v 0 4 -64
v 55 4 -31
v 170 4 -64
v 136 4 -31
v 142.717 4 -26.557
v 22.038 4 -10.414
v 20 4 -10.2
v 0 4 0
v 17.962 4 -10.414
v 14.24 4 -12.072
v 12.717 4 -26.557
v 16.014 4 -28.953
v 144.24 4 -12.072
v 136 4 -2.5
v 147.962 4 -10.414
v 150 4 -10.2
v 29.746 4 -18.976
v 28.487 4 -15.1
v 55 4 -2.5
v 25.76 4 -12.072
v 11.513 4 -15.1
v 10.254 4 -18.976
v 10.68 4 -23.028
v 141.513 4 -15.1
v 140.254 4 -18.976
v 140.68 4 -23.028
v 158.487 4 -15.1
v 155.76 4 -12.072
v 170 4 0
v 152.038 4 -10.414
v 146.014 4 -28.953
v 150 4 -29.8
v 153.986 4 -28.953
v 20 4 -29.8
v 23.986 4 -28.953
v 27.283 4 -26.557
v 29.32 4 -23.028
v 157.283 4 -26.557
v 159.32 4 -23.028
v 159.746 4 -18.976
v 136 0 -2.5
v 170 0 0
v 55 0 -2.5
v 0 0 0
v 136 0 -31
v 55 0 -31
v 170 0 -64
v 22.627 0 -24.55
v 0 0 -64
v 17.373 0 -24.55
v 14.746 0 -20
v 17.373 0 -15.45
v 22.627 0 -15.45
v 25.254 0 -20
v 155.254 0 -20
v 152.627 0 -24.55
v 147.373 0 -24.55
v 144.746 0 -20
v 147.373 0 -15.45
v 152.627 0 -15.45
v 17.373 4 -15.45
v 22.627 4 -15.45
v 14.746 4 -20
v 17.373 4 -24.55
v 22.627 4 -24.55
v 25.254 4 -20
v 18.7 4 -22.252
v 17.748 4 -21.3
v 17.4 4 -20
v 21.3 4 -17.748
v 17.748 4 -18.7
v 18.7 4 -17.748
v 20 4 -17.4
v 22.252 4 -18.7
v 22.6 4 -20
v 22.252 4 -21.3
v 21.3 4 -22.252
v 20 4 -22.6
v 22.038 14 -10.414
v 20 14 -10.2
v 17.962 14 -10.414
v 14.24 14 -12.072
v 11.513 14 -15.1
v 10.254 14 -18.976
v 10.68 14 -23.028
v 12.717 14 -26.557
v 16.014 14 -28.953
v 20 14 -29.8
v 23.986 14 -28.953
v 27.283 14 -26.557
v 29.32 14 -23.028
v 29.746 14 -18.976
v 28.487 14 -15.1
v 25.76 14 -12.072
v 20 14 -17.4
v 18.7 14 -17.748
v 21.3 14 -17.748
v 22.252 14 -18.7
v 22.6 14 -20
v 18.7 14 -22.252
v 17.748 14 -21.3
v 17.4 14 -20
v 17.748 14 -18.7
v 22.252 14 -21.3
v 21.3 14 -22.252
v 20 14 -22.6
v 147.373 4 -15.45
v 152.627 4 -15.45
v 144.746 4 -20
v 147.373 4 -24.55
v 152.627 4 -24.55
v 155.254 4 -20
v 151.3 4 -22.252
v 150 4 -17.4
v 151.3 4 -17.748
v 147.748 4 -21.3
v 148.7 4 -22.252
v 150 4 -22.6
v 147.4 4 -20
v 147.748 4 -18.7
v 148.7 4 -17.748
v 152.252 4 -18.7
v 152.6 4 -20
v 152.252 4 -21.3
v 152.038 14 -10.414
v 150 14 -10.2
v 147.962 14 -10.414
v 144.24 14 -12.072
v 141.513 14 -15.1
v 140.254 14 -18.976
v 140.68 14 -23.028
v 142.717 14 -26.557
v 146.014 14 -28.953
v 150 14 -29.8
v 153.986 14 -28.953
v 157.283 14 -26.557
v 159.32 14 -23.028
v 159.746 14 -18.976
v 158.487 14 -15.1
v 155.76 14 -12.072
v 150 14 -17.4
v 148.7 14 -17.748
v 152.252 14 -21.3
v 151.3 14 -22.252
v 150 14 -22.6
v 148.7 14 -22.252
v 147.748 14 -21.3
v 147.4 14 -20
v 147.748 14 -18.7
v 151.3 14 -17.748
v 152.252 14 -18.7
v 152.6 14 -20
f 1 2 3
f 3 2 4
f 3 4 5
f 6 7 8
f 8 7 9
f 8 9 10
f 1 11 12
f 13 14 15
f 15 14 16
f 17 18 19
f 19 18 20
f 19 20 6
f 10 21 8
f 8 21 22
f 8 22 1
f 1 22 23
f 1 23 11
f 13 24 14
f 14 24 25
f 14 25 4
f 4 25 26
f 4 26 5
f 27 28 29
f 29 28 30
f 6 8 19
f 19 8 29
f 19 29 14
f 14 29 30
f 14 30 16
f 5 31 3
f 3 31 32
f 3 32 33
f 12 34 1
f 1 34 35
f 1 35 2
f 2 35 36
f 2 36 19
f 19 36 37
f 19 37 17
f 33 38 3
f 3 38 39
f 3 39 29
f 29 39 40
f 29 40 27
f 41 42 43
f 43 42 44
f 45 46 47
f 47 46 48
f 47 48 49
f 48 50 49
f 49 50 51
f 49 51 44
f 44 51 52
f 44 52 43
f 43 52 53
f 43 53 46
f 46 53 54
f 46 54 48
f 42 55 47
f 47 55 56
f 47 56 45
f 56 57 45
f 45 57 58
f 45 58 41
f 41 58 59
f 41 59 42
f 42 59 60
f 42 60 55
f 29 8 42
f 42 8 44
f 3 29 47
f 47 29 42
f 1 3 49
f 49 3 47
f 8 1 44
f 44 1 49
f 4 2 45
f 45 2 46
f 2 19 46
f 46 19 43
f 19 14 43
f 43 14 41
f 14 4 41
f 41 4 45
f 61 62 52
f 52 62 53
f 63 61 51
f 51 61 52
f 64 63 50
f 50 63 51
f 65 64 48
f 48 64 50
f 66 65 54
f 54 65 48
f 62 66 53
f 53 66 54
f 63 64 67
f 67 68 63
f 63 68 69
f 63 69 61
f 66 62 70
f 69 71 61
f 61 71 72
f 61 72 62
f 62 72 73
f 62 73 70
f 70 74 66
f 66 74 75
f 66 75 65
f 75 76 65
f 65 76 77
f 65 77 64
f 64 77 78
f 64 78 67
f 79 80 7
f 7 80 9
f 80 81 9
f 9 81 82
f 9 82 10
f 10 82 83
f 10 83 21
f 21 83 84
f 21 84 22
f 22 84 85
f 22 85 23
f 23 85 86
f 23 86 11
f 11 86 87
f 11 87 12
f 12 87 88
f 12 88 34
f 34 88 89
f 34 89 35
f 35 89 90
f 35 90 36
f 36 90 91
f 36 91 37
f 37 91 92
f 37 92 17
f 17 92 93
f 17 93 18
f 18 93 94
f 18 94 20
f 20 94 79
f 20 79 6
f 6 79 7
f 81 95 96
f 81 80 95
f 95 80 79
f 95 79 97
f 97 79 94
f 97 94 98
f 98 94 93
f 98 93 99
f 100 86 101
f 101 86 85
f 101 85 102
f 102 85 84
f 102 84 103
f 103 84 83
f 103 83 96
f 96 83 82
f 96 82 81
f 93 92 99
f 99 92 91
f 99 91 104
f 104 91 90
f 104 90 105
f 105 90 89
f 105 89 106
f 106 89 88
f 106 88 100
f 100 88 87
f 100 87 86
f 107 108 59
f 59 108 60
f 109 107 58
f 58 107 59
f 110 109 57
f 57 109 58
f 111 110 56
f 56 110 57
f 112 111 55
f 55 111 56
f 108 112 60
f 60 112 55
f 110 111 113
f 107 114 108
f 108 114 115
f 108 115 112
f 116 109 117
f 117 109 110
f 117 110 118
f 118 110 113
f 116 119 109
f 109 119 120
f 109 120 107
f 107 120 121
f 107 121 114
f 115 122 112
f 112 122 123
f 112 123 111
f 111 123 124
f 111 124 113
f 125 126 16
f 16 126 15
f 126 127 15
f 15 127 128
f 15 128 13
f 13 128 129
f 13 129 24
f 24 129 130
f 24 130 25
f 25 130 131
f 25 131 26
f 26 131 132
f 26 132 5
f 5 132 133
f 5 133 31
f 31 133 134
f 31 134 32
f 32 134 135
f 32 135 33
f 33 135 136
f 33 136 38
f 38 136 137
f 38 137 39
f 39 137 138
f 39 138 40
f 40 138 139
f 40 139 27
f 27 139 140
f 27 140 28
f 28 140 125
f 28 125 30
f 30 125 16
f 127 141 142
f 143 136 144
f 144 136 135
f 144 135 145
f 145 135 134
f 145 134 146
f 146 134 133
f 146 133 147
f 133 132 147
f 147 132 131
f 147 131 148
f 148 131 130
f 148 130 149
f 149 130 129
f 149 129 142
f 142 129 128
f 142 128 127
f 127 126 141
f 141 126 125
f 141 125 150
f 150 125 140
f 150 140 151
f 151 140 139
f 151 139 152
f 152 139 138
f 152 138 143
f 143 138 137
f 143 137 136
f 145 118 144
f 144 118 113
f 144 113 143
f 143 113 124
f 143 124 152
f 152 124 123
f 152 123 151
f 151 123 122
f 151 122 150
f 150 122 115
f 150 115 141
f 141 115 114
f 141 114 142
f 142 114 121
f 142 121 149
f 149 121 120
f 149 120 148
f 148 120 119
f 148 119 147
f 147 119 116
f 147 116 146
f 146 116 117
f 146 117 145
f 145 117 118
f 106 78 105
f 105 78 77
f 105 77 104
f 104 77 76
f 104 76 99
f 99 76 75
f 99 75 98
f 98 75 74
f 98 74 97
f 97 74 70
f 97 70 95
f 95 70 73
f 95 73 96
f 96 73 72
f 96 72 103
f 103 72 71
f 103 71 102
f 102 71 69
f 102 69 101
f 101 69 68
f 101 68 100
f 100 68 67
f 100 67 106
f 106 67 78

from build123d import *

# Parameters (mm, degrees)
SKETCH1_W             = 170
SKETCH1_H             = 64
SKETCH1_R             = 10
SKETCH1_W_2           = 81
SKETCH1_H_2           = 28.5
BOSS_EXTRUDE1_DEPTH   = 4
BOSS_EXTRUDE2_START   = -4
SKETCH2_R             = 10
SKETCH2_R_2           = 9.8
BOSS_EXTRUDE2_DEPTH   = 4
SKETCH3_R             = 9.8
BOSS_EXTRUDE3_DEPTH   = 10
BOSS_EXTRUDE3_2_DEPTH = 10
BOSS_EXTRUDE4_START   = 4
SKETCH4_R             = 9.8
SKETCH4_R_2           = 2.6
BOSS_EXTRUDE4_DEPTH   = 4
SKETCH5_R             = 2.6
CUT_EXTRUDE1_DEPTH    = 47


with BuildPart() as part:
    # Sketch1 → Boss-Extrude1 (new body)
    with BuildSketch(Plane(origin=(0, 0, 0), x_dir=(1, 0, 0), z_dir=(0, 1, 0))):
        with Locations((85, 32)):
            Rectangle(SKETCH1_W, SKETCH1_H)
        with Locations(Location((20, 20, 0), (0, 0, 270))):
            Circle(SKETCH1_R, mode=Mode.SUBTRACT)
        with Locations(Location((150, 20, 0), (0, 0, 270))):
            Circle(SKETCH1_R, mode=Mode.SUBTRACT)
        with Locations((95.5, 16.75)):
            Rectangle(SKETCH1_W_2, SKETCH1_H_2, mode=Mode.SUBTRACT)
    extrude(amount=BOSS_EXTRUDE1_DEPTH)

    # Sketch2 → Boss-Extrude2 (add)
    # profile 1 of 2: a face of its own
    with BuildSketch(Plane(origin=(0, 4, 0), x_dir=(1, 0, 0), z_dir=(0, 1, 0)).offset(BOSS_EXTRUDE2_START)):
        with Locations((20, 20)):
            Circle(SKETCH2_R)
        with Locations(Location((20, 20, 0), (0, 0, 270))):
            Circle(SKETCH2_R_2, mode=Mode.SUBTRACT)
    # profile 2 of 2: a face of its own
    with BuildSketch(Plane(origin=(0, 4, 0), x_dir=(1, 0, 0), z_dir=(0, 1, 0)).offset(BOSS_EXTRUDE2_START)):
        with Locations((150, 20)):
            Circle(SKETCH2_R)
        with Locations(Location((150, 20, 0), (0, 0, 270))):
            Circle(SKETCH2_R_2, mode=Mode.SUBTRACT)
    extrude(amount=BOSS_EXTRUDE2_DEPTH)



with BuildPart() as body_2:
    # Sketch3 → Boss-Extrude3 (new body)
    with BuildSketch(Plane(origin=(0, 4, 0), x_dir=(1, 0, 0), z_dir=(0, 1, 0))):
        with Locations(Location((20, 20, 0), (0, 0, 270))):
            Circle(SKETCH3_R)
    extrude(amount=BOSS_EXTRUDE3_DEPTH)


with BuildPart() as body_3:
    # Sketch3 → Boss-Extrude3 2 (new body)
    with BuildSketch(Plane(origin=(0, 4, 0), x_dir=(1, 0, 0), z_dir=(0, 1, 0))):
        with Locations(Location((150, 20, 0), (0, 0, 270))):
            Circle(SKETCH3_R)
    extrude(amount=BOSS_EXTRUDE3_2_DEPTH)


with BuildPart() as part_1:
    add(part.part)

    add(body_2.part)  # Boss-Extrude4 merges body 2

    add(body_3.part)  # Boss-Extrude4 merges body 3
    # Sketch4 → Boss-Extrude4 (add)
    # profile 1 of 4: a face of its own
    with BuildSketch(Plane.XZ.offset(-4).offset(BOSS_EXTRUDE4_START)):
        with Locations(Location((20, -20, 0), (0, 0, 90))):
            Circle(SKETCH4_R)
        Polygon((25.25388745, -20), (22.626943725, -15.45), (17.373056275, -15.45), (14.74611255, -20), (17.373056275, -24.55), (22.626943725, -24.55), align=None, mode=Mode.SUBTRACT)
    # profile 2 of 4: a face of its own
    with BuildSketch(Plane.XZ.offset(-4).offset(BOSS_EXTRUDE4_START)):
        with Locations(Location((20, -20, 0), (0, 0, 90))):
            Circle(SKETCH4_R_2)
    # profile 3 of 4: a face of its own
    with BuildSketch(Plane.XZ.offset(-4).offset(BOSS_EXTRUDE4_START)):
        with Locations(Location((150, -20, 0), (0, 0, 90))):
            Circle(SKETCH4_R)
        Polygon((155.25388745, -20), (152.626943725, -15.45), (147.373056275, -15.45), (144.74611255, -20), (147.373056275, -24.55), (152.626943725, -24.55), align=None, mode=Mode.SUBTRACT)
    # profile 4 of 4: a face of its own
    with BuildSketch(Plane.XZ.offset(-4).offset(BOSS_EXTRUDE4_START)):
        with Locations(Location((150, -20, 0), (0, 0, 90))):
            Circle(SKETCH4_R_2)
    extrude(amount=-BOSS_EXTRUDE4_DEPTH)

    # Sketch5 → Cut-Extrude1 (cut)
    with BuildSketch(Plane.XZ):
        with Locations(Location((20, -20, 0), (0, 0, 90))):
            Circle(SKETCH5_R)
        with Locations(Location((150, -20, 0), (0, 0, 90))):
            Circle(SKETCH5_R)
    extrude(amount=-CUT_EXTRUDE1_DEPTH, mode=Mode.SUBTRACT)


solid = part_1.part
